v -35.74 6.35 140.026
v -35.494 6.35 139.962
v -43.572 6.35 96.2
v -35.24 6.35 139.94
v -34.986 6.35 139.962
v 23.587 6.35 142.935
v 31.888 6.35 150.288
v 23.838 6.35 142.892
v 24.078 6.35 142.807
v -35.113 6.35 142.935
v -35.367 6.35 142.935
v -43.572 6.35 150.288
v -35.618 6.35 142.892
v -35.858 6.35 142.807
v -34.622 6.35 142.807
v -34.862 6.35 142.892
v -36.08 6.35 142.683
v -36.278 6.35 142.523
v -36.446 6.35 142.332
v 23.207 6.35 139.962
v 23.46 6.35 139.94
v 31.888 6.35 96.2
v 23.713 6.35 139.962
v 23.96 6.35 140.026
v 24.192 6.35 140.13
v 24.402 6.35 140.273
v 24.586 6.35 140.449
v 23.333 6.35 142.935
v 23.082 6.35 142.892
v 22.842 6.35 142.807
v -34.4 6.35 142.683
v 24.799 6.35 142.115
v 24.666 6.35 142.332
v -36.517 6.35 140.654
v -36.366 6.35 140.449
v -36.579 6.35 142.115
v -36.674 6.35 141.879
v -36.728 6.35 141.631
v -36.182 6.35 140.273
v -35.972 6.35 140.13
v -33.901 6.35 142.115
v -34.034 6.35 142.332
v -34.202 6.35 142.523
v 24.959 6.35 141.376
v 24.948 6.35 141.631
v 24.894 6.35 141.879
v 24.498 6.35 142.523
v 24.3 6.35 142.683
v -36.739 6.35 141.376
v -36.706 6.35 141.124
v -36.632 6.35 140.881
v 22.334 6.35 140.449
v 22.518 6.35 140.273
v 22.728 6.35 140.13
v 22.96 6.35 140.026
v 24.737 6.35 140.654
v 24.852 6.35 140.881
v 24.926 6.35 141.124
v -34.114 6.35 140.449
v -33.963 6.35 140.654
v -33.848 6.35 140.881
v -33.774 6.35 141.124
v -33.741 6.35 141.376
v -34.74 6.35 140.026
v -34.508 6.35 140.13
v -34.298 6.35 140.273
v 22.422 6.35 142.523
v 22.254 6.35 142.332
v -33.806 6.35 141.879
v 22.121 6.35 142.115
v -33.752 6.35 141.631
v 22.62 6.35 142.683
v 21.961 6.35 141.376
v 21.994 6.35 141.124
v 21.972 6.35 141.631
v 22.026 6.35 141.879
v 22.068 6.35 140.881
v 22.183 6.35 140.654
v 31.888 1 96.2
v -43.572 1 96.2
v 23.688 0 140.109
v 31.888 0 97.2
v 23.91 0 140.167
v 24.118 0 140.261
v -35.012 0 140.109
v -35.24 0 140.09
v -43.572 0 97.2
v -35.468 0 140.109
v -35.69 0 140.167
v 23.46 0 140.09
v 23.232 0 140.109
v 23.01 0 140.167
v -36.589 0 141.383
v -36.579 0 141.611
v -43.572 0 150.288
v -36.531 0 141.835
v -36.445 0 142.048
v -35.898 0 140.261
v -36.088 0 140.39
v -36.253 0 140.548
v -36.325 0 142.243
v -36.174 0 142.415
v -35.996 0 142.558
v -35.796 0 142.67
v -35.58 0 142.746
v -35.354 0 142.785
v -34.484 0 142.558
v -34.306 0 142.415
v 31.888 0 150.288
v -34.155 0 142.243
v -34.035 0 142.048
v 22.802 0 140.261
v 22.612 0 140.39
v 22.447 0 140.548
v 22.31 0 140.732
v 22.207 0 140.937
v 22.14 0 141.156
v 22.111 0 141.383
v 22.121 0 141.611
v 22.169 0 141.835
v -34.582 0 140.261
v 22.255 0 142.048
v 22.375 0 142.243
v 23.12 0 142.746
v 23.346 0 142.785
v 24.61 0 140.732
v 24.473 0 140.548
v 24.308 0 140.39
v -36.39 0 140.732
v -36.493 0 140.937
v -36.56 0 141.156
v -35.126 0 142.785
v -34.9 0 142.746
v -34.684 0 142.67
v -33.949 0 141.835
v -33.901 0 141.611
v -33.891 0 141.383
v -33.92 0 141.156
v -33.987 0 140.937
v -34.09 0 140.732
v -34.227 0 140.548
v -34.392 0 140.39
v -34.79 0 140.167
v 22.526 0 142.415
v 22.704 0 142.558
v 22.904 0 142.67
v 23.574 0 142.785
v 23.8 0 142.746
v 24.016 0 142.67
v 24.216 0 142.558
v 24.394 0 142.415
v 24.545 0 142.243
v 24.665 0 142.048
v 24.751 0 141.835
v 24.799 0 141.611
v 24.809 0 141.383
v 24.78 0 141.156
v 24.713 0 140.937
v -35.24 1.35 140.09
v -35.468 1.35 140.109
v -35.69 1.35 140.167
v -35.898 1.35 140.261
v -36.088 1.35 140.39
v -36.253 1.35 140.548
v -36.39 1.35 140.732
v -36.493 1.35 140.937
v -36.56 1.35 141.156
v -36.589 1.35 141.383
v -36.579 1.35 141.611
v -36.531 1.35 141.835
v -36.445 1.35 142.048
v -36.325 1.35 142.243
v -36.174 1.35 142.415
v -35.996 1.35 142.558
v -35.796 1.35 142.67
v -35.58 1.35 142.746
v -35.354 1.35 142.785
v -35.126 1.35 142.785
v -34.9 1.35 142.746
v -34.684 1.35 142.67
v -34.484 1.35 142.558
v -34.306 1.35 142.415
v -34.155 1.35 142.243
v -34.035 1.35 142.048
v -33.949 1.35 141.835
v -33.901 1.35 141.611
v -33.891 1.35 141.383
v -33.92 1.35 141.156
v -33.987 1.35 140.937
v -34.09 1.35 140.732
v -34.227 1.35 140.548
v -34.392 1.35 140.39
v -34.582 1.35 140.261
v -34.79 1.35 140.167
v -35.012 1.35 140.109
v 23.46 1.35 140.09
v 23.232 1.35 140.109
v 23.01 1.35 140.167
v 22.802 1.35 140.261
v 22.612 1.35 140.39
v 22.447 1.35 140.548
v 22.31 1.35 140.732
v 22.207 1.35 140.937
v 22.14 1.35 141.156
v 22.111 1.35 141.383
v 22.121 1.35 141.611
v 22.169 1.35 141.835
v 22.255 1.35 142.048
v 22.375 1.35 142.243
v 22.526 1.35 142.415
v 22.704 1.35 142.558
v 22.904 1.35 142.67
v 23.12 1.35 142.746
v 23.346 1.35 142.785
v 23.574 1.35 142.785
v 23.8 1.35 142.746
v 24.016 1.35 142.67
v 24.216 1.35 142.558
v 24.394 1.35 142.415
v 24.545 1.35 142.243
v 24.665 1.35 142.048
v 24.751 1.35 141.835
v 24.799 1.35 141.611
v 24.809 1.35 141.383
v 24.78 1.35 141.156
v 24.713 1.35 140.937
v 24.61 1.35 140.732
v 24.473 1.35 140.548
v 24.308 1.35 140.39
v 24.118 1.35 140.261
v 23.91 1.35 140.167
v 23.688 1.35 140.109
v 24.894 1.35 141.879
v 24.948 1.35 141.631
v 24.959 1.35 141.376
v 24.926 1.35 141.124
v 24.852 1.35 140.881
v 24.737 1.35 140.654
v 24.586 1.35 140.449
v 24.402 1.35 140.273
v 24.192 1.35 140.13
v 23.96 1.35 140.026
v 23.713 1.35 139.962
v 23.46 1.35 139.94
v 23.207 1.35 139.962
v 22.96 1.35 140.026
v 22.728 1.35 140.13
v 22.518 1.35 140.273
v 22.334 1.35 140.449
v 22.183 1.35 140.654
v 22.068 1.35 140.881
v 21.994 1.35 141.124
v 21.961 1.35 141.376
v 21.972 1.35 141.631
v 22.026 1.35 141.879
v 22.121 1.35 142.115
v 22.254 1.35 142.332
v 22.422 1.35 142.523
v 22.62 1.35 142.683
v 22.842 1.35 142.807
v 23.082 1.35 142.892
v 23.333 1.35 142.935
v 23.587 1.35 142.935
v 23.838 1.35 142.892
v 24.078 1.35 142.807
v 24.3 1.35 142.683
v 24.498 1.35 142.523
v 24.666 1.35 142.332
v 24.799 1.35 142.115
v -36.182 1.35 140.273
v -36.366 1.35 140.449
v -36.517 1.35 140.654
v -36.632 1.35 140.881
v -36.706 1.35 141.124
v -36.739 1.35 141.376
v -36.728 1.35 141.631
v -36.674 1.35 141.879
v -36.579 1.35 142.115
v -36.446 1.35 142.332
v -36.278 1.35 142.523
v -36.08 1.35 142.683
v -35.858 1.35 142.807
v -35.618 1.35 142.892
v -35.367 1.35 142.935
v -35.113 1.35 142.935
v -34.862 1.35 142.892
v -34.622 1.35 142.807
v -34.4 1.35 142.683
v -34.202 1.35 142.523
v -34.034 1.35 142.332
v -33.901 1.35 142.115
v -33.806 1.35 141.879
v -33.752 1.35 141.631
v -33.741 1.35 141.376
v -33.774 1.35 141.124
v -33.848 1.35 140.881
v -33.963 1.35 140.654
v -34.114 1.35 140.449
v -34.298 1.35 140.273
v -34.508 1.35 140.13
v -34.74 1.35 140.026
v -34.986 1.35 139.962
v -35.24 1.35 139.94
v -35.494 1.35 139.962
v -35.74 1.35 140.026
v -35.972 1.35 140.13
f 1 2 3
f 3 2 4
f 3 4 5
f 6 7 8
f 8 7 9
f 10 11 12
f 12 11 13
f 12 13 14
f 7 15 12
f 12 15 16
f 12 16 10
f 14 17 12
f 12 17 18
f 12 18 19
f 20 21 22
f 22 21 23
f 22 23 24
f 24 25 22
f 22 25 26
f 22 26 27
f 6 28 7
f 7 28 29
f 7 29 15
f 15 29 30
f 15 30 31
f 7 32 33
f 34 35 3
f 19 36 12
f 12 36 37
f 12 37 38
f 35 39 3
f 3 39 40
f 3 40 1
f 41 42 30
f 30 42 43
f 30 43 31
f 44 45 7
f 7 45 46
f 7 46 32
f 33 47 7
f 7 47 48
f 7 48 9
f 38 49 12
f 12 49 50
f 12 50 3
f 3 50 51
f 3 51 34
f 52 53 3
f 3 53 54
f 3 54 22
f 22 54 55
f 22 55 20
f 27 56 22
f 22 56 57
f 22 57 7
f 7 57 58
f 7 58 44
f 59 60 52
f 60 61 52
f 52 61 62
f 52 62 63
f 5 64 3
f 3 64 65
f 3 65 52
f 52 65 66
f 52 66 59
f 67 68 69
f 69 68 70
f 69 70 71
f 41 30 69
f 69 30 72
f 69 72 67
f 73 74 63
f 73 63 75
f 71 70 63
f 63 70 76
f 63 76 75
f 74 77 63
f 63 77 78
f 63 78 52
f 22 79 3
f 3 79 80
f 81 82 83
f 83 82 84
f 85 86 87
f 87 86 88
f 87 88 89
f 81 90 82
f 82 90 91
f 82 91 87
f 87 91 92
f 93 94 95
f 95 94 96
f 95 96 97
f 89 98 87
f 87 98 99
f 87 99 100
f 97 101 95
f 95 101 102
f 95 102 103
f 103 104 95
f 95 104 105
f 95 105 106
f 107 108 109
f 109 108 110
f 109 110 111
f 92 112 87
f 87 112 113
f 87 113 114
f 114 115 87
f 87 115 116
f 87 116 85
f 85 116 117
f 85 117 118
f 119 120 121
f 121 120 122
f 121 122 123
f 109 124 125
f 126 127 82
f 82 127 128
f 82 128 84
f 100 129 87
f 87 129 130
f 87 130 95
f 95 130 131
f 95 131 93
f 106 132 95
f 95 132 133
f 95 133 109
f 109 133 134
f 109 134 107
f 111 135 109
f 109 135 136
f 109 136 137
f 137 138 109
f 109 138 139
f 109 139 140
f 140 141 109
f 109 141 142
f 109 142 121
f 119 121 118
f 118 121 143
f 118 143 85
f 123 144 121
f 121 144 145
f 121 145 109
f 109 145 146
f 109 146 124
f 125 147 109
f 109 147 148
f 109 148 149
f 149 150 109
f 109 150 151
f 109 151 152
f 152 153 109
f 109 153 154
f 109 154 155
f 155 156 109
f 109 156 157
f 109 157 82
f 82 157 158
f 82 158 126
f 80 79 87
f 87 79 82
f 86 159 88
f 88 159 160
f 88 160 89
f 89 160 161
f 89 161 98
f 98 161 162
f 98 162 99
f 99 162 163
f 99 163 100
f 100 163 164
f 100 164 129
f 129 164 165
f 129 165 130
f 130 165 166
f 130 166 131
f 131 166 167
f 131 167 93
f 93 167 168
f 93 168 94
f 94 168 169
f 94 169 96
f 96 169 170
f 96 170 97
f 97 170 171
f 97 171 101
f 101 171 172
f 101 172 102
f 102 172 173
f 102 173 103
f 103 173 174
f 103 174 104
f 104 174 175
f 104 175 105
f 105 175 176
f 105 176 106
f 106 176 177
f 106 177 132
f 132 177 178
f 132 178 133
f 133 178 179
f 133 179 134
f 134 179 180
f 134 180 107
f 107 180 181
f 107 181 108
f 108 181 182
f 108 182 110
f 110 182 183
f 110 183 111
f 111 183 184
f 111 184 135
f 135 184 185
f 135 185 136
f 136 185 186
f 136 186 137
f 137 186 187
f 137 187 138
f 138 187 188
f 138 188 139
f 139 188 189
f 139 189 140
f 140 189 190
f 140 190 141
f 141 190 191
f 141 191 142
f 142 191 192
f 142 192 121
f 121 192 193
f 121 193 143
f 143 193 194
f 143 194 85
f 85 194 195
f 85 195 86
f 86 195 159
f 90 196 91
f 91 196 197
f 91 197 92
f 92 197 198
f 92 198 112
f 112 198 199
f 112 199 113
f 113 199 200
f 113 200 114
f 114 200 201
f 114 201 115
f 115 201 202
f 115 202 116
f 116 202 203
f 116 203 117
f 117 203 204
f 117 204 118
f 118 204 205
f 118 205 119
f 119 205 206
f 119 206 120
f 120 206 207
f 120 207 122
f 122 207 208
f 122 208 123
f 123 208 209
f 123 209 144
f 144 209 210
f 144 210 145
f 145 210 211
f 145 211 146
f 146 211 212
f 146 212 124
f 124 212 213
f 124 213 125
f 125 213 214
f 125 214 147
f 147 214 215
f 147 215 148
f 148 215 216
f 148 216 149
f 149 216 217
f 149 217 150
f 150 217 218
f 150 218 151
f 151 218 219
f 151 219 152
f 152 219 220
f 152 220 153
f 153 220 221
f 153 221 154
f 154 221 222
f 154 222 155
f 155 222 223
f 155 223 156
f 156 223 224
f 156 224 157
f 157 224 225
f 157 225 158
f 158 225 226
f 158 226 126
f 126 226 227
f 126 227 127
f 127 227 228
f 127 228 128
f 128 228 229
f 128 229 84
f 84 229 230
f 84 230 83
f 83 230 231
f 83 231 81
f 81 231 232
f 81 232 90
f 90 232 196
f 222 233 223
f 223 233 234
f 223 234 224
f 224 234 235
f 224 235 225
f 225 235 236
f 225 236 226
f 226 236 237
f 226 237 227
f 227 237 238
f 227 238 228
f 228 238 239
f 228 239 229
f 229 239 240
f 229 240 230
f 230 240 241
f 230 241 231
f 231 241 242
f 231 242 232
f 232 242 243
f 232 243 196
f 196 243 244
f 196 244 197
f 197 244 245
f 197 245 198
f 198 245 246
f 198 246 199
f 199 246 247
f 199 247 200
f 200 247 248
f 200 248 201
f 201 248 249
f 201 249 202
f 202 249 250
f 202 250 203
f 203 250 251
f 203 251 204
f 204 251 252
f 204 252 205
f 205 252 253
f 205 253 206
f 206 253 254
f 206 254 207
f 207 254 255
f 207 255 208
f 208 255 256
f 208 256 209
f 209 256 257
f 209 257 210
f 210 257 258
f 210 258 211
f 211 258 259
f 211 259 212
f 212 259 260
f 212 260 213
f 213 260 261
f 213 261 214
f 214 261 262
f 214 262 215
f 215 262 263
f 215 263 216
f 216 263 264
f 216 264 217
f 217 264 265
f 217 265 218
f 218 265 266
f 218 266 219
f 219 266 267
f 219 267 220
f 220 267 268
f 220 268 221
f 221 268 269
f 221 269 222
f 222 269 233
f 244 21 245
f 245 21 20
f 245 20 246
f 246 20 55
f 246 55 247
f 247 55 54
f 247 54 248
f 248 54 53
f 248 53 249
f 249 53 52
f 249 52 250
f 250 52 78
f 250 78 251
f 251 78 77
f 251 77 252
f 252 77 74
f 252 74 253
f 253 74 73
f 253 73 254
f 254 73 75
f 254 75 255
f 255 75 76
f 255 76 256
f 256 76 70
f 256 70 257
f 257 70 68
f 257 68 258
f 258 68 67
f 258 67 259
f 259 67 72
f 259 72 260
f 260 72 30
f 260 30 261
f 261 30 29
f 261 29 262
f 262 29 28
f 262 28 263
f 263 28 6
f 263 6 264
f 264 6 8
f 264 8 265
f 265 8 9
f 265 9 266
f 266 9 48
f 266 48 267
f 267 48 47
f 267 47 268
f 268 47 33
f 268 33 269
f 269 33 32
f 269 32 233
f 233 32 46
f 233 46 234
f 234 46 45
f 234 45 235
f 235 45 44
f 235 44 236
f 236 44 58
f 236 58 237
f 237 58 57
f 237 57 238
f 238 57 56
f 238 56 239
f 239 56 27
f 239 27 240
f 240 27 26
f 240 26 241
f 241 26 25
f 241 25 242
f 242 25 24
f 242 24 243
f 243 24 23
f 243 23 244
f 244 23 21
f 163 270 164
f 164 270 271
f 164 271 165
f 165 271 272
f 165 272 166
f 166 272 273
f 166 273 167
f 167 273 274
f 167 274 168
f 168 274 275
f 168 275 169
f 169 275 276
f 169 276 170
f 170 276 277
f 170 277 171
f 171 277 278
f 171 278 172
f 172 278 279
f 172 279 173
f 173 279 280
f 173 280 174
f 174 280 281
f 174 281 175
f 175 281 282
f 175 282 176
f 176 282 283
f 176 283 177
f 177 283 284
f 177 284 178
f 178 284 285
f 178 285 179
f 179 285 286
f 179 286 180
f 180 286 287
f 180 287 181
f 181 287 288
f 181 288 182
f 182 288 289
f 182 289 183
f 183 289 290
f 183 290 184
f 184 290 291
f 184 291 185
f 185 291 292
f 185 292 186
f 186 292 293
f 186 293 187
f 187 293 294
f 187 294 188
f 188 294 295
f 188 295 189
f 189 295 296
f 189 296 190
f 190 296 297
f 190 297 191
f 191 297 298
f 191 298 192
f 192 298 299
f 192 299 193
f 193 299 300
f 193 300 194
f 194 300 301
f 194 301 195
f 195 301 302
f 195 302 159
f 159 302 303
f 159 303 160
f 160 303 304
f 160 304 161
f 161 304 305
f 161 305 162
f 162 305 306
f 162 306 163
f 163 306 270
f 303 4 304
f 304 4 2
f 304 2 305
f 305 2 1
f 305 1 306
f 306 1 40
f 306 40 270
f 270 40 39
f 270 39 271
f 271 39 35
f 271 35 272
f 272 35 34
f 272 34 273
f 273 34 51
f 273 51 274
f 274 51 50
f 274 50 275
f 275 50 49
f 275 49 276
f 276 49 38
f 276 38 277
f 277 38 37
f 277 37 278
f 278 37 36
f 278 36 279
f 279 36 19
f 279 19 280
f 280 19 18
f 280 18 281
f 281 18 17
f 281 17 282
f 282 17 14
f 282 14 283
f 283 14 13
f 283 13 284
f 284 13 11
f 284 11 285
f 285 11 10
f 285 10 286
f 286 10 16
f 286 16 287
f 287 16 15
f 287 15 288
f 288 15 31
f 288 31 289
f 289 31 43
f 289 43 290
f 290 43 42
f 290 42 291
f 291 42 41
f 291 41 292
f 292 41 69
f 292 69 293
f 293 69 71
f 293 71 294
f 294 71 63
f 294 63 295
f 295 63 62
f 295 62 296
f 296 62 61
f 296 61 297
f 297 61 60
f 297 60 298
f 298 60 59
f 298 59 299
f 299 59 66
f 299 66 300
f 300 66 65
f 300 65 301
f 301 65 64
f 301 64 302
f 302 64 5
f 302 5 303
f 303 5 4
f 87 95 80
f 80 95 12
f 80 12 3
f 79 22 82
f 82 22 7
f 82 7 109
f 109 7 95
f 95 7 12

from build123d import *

# Parameters (mm, degrees)
SKETCH1_W                      = 172.4
SKETCH1_H                      = 192.4
BOSS_EXTRUDE1_DEPTH            = 6.35
CUT_EXTRUDE1_REACH             = 131.326
SKETCH2_W                      = 41
SKETCH2_H                      = 41
CBORE_FOR_M4_SHCS1_D           = 4.5
CBORE_FOR_M4_SHCS1_CBORE_D     = 8
CBORE_FOR_M4_SHCS1_CBORE_DEPTH = 4
CUT_EXTRUDE3_REACH             = 131.326
SKETCH5_R                      = 1.2
SKETCH6_R                      = 1.4
CUT_EXTRUDE4_DEPTH             = 4
CUT_EXTRUDE5_REACH             = 131.326
SKETCH7_R                      = 1.35
SKETCH8_R                      = 1.5
CUT_EXTRUDE6_DEPTH             = 5
SKETCH9_W                      = 3
SKETCH9_H                      = 192.4
EXTRUDE_THIN1_DEPTH            = 3
CHAMFER1_SIZE                  = 3
CHAMFER2_SIZE                  = 1
CUT_EXTRUDE8_DEPTH             = 302.265202936
CUT_EXTRUDE8_DEPTH_BACK        = 302.265202936
SKETCH11_W                     = 285.28996188
SKETCH11_H                     = 259.000443209
SKETCH11_W_2                   = 75.460655446
SKETCH11_H_2                   = 65.723796679


with BuildPart() as part:
    # Sketch1 → Boss-Extrude1 (new body)
    with BuildSketch(Plane(origin=(0, 0, 0), x_dir=(1, 0, 0), z_dir=(0, 1, 0))):
        Rectangle(SKETCH1_W, SKETCH1_H)
    extrude(amount=BOSS_EXTRUDE1_DEPTH)

    # Sketch2 → Cut-Extrude1 (cut, up to next)
    with BuildSketch(Plane(origin=(0, 6.35, 0), x_dir=(1, 0, 0), z_dir=(0, 1, 0)), mode=Mode.PRIVATE) as cut_extrude1_sk1:
        with Locations((-65.7, 75.7)):
            Rectangle(SKETCH2_W, SKETCH2_H)
    cut_extrude1_tool1 = extrude(cut_extrude1_sk1.sketch, amount=-CUT_EXTRUDE1_REACH, mode=Mode.PRIVATE) & part.part
    add(cut_extrude1_tool1.solids().sort_by_distance((-65.7, 6.35, -75.7))[0], mode=Mode.SUBTRACT)

    # CBORE for M4 SHCS1 (through all)
    with Locations(Plane(origin=(0, 6.35, 0), x_dir=(1, 0, 0), z_dir=(0, 1, 0))):
        with Locations((66.2, 76.2), (-66.2, 34.39549116), (-66.2, -56.2), (-26.2, 76.2)):
            CounterBoreHole(CBORE_FOR_M4_SHCS1_D / 2, CBORE_FOR_M4_SHCS1_CBORE_D / 2, CBORE_FOR_M4_SHCS1_CBORE_DEPTH)

    # Sketch5 → Cut-Extrude3 (cut, up to next)
    with BuildSketch(Plane(origin=(0, 6.35, 0), x_dir=(1, 0, 0), z_dir=(0, 1, 0)), mode=Mode.PRIVATE) as cut_extrude3_sk1:
        with Locations(Location((-76.36, -87.31, 0), (0, 0, 270))):
            Circle(SKETCH5_R)
    cut_extrude3_tool1 = extrude(cut_extrude3_sk1.sketch, amount=-CUT_EXTRUDE3_REACH, mode=Mode.PRIVATE) & part.part
    # Sketch5 → Cut-Extrude3 (cut, up to next)
    with BuildSketch(Plane(origin=(0, 6.35, 0), x_dir=(1, 0, 0), z_dir=(0, 1, 0)), mode=Mode.PRIVATE) as cut_extrude3_sk2:
        with Locations(Location((-56.04, -87.31, 0), (0, 0, 270))):
            Circle(SKETCH5_R)
    cut_extrude3_tool2 = extrude(cut_extrude3_sk2.sketch, amount=-CUT_EXTRUDE3_REACH, mode=Mode.PRIVATE) & part.part
    add(cut_extrude3_tool1.solids().sort_by_distance((-76.36, 6.35, 87.31))[0], mode=Mode.SUBTRACT)
    add(cut_extrude3_tool2.solids().sort_by_distance((-56.04, 6.35, 87.31))[0], mode=Mode.SUBTRACT)

    # Sketch6 → Cut-Extrude4 (cut)
    with BuildSketch(Plane(origin=(0, 6.35, 0), x_dir=(1, 0, 0), z_dir=(0, 1, 0))):
        with Locations(Location((-76.36, -87.31, 0), (0, 0, 270))):
            Circle(SKETCH6_R)
        with Locations(Location((-56.04, -87.31, 0), (0, 0, 270))):
            Circle(SKETCH6_R)
    extrude(amount=-CUT_EXTRUDE4_DEPTH, mode=Mode.SUBTRACT)

    # Sketch7 → Cut-Extrude5 (cut, up to next)
    with BuildSketch(Plane(origin=(0, 6.35, 0), x_dir=(1, 0, 0), z_dir=(0, 1, 0)), mode=Mode.PRIVATE) as cut_extrude5_sk1:
        with Locations(Location((-35.24, -50.96, 0), (0, 0, 270))):
            Circle(SKETCH7_R)
    cut_extrude5_tool1 = extrude(cut_extrude5_sk1.sketch, amount=-CUT_EXTRUDE5_REACH, mode=Mode.PRIVATE) & part.part
    # Sketch7 → Cut-Extrude5 (cut, up to next)
    with BuildSketch(Plane(origin=(0, 6.35, 0), x_dir=(1, 0, 0), z_dir=(0, 1, 0)), mode=Mode.PRIVATE) as cut_extrude5_sk2:
        with Locations(Location((23.46, -50.96, 0), (0, 0, 270))):
            Circle(SKETCH7_R)
    cut_extrude5_tool2 = extrude(cut_extrude5_sk2.sketch, amount=-CUT_EXTRUDE5_REACH, mode=Mode.PRIVATE) & part.part
    add(cut_extrude5_tool1.solids().sort_by_distance((-35.24, 6.35, 50.96))[0], mode=Mode.SUBTRACT)
    add(cut_extrude5_tool2.solids().sort_by_distance((23.46, 6.35, 50.96))[0], mode=Mode.SUBTRACT)

    # Sketch8 → Cut-Extrude6 (cut)
    with BuildSketch(Plane(origin=(0, 6.35, 0), x_dir=(1, 0, 0), z_dir=(0, 1, 0))):
        with Locations(Location((-35.24, -50.96, 0), (0, 0, 270))):
            Circle(SKETCH8_R)
        with Locations(Location((23.46, -50.96, 0), (0, 0, 270))):
            Circle(SKETCH8_R)
    extrude(amount=-CUT_EXTRUDE6_DEPTH, mode=Mode.SUBTRACT)

    # Sketch9 → Extrude-Thin1 (add)
    with BuildSketch(Plane(origin=(0, 6.35, 0), x_dir=(1, 0, 0), z_dir=(0, 1, 0))):
        with Locations((78.7, 0)):
            Rectangle(SKETCH9_W, SKETCH9_H)
    extrude(amount=EXTRUDE_THIN1_DEPTH)

    # Chamfer1
    chamfer1_edges = [part.edges().sort_by_distance(p)[0] for p in [
        (77.2, 6.35, 0),
        (80.2, 6.35, 0),
    ]]
    chamfer(chamfer1_edges, length=CHAMFER1_SIZE - 0.0001)  # a hair under: the kernel refuses the full size

    # Chamfer2
    chamfer2_edges = [part.edges().sort_by_distance(p)[0] for p in [
        (0, 0, 96.2),
        (86.2, 0, 0),
    ]]
    chamfer(chamfer2_edges, length=CHAMFER2_SIZE)


with BuildPart() as body_2:
    # Mirror1: mirrored copy
    add(part.part.mirror(Plane(origin=(1.506427127, 3.750129783, 96.2), x_dir=(1, 0, 0), z_dir=(0, 0, 1))))

    # Sketch11 → Cut-Extrude8 (cut, two sides: drawn at the far end of the back side and taken through both)
    with BuildSketch(Plane(origin=(0, 6.35, 0), x_dir=(1, 0, 0), z_dir=(0, 1, 0)).offset(-CUT_EXTRUDE8_DEPTH_BACK)):
        with Locations((10.467123175, -184.853934456)):
            Rectangle(SKETCH11_W, SKETCH11_H)
        with Locations((-5.84211526, -117.426187493)):
            Rectangle(SKETCH11_W_2, SKETCH11_H_2, mode=Mode.SUBTRACT)
    extrude(amount=CUT_EXTRUDE8_DEPTH + CUT_EXTRUDE8_DEPTH_BACK, mode=Mode.SUBTRACT)


solid = body_2.part
